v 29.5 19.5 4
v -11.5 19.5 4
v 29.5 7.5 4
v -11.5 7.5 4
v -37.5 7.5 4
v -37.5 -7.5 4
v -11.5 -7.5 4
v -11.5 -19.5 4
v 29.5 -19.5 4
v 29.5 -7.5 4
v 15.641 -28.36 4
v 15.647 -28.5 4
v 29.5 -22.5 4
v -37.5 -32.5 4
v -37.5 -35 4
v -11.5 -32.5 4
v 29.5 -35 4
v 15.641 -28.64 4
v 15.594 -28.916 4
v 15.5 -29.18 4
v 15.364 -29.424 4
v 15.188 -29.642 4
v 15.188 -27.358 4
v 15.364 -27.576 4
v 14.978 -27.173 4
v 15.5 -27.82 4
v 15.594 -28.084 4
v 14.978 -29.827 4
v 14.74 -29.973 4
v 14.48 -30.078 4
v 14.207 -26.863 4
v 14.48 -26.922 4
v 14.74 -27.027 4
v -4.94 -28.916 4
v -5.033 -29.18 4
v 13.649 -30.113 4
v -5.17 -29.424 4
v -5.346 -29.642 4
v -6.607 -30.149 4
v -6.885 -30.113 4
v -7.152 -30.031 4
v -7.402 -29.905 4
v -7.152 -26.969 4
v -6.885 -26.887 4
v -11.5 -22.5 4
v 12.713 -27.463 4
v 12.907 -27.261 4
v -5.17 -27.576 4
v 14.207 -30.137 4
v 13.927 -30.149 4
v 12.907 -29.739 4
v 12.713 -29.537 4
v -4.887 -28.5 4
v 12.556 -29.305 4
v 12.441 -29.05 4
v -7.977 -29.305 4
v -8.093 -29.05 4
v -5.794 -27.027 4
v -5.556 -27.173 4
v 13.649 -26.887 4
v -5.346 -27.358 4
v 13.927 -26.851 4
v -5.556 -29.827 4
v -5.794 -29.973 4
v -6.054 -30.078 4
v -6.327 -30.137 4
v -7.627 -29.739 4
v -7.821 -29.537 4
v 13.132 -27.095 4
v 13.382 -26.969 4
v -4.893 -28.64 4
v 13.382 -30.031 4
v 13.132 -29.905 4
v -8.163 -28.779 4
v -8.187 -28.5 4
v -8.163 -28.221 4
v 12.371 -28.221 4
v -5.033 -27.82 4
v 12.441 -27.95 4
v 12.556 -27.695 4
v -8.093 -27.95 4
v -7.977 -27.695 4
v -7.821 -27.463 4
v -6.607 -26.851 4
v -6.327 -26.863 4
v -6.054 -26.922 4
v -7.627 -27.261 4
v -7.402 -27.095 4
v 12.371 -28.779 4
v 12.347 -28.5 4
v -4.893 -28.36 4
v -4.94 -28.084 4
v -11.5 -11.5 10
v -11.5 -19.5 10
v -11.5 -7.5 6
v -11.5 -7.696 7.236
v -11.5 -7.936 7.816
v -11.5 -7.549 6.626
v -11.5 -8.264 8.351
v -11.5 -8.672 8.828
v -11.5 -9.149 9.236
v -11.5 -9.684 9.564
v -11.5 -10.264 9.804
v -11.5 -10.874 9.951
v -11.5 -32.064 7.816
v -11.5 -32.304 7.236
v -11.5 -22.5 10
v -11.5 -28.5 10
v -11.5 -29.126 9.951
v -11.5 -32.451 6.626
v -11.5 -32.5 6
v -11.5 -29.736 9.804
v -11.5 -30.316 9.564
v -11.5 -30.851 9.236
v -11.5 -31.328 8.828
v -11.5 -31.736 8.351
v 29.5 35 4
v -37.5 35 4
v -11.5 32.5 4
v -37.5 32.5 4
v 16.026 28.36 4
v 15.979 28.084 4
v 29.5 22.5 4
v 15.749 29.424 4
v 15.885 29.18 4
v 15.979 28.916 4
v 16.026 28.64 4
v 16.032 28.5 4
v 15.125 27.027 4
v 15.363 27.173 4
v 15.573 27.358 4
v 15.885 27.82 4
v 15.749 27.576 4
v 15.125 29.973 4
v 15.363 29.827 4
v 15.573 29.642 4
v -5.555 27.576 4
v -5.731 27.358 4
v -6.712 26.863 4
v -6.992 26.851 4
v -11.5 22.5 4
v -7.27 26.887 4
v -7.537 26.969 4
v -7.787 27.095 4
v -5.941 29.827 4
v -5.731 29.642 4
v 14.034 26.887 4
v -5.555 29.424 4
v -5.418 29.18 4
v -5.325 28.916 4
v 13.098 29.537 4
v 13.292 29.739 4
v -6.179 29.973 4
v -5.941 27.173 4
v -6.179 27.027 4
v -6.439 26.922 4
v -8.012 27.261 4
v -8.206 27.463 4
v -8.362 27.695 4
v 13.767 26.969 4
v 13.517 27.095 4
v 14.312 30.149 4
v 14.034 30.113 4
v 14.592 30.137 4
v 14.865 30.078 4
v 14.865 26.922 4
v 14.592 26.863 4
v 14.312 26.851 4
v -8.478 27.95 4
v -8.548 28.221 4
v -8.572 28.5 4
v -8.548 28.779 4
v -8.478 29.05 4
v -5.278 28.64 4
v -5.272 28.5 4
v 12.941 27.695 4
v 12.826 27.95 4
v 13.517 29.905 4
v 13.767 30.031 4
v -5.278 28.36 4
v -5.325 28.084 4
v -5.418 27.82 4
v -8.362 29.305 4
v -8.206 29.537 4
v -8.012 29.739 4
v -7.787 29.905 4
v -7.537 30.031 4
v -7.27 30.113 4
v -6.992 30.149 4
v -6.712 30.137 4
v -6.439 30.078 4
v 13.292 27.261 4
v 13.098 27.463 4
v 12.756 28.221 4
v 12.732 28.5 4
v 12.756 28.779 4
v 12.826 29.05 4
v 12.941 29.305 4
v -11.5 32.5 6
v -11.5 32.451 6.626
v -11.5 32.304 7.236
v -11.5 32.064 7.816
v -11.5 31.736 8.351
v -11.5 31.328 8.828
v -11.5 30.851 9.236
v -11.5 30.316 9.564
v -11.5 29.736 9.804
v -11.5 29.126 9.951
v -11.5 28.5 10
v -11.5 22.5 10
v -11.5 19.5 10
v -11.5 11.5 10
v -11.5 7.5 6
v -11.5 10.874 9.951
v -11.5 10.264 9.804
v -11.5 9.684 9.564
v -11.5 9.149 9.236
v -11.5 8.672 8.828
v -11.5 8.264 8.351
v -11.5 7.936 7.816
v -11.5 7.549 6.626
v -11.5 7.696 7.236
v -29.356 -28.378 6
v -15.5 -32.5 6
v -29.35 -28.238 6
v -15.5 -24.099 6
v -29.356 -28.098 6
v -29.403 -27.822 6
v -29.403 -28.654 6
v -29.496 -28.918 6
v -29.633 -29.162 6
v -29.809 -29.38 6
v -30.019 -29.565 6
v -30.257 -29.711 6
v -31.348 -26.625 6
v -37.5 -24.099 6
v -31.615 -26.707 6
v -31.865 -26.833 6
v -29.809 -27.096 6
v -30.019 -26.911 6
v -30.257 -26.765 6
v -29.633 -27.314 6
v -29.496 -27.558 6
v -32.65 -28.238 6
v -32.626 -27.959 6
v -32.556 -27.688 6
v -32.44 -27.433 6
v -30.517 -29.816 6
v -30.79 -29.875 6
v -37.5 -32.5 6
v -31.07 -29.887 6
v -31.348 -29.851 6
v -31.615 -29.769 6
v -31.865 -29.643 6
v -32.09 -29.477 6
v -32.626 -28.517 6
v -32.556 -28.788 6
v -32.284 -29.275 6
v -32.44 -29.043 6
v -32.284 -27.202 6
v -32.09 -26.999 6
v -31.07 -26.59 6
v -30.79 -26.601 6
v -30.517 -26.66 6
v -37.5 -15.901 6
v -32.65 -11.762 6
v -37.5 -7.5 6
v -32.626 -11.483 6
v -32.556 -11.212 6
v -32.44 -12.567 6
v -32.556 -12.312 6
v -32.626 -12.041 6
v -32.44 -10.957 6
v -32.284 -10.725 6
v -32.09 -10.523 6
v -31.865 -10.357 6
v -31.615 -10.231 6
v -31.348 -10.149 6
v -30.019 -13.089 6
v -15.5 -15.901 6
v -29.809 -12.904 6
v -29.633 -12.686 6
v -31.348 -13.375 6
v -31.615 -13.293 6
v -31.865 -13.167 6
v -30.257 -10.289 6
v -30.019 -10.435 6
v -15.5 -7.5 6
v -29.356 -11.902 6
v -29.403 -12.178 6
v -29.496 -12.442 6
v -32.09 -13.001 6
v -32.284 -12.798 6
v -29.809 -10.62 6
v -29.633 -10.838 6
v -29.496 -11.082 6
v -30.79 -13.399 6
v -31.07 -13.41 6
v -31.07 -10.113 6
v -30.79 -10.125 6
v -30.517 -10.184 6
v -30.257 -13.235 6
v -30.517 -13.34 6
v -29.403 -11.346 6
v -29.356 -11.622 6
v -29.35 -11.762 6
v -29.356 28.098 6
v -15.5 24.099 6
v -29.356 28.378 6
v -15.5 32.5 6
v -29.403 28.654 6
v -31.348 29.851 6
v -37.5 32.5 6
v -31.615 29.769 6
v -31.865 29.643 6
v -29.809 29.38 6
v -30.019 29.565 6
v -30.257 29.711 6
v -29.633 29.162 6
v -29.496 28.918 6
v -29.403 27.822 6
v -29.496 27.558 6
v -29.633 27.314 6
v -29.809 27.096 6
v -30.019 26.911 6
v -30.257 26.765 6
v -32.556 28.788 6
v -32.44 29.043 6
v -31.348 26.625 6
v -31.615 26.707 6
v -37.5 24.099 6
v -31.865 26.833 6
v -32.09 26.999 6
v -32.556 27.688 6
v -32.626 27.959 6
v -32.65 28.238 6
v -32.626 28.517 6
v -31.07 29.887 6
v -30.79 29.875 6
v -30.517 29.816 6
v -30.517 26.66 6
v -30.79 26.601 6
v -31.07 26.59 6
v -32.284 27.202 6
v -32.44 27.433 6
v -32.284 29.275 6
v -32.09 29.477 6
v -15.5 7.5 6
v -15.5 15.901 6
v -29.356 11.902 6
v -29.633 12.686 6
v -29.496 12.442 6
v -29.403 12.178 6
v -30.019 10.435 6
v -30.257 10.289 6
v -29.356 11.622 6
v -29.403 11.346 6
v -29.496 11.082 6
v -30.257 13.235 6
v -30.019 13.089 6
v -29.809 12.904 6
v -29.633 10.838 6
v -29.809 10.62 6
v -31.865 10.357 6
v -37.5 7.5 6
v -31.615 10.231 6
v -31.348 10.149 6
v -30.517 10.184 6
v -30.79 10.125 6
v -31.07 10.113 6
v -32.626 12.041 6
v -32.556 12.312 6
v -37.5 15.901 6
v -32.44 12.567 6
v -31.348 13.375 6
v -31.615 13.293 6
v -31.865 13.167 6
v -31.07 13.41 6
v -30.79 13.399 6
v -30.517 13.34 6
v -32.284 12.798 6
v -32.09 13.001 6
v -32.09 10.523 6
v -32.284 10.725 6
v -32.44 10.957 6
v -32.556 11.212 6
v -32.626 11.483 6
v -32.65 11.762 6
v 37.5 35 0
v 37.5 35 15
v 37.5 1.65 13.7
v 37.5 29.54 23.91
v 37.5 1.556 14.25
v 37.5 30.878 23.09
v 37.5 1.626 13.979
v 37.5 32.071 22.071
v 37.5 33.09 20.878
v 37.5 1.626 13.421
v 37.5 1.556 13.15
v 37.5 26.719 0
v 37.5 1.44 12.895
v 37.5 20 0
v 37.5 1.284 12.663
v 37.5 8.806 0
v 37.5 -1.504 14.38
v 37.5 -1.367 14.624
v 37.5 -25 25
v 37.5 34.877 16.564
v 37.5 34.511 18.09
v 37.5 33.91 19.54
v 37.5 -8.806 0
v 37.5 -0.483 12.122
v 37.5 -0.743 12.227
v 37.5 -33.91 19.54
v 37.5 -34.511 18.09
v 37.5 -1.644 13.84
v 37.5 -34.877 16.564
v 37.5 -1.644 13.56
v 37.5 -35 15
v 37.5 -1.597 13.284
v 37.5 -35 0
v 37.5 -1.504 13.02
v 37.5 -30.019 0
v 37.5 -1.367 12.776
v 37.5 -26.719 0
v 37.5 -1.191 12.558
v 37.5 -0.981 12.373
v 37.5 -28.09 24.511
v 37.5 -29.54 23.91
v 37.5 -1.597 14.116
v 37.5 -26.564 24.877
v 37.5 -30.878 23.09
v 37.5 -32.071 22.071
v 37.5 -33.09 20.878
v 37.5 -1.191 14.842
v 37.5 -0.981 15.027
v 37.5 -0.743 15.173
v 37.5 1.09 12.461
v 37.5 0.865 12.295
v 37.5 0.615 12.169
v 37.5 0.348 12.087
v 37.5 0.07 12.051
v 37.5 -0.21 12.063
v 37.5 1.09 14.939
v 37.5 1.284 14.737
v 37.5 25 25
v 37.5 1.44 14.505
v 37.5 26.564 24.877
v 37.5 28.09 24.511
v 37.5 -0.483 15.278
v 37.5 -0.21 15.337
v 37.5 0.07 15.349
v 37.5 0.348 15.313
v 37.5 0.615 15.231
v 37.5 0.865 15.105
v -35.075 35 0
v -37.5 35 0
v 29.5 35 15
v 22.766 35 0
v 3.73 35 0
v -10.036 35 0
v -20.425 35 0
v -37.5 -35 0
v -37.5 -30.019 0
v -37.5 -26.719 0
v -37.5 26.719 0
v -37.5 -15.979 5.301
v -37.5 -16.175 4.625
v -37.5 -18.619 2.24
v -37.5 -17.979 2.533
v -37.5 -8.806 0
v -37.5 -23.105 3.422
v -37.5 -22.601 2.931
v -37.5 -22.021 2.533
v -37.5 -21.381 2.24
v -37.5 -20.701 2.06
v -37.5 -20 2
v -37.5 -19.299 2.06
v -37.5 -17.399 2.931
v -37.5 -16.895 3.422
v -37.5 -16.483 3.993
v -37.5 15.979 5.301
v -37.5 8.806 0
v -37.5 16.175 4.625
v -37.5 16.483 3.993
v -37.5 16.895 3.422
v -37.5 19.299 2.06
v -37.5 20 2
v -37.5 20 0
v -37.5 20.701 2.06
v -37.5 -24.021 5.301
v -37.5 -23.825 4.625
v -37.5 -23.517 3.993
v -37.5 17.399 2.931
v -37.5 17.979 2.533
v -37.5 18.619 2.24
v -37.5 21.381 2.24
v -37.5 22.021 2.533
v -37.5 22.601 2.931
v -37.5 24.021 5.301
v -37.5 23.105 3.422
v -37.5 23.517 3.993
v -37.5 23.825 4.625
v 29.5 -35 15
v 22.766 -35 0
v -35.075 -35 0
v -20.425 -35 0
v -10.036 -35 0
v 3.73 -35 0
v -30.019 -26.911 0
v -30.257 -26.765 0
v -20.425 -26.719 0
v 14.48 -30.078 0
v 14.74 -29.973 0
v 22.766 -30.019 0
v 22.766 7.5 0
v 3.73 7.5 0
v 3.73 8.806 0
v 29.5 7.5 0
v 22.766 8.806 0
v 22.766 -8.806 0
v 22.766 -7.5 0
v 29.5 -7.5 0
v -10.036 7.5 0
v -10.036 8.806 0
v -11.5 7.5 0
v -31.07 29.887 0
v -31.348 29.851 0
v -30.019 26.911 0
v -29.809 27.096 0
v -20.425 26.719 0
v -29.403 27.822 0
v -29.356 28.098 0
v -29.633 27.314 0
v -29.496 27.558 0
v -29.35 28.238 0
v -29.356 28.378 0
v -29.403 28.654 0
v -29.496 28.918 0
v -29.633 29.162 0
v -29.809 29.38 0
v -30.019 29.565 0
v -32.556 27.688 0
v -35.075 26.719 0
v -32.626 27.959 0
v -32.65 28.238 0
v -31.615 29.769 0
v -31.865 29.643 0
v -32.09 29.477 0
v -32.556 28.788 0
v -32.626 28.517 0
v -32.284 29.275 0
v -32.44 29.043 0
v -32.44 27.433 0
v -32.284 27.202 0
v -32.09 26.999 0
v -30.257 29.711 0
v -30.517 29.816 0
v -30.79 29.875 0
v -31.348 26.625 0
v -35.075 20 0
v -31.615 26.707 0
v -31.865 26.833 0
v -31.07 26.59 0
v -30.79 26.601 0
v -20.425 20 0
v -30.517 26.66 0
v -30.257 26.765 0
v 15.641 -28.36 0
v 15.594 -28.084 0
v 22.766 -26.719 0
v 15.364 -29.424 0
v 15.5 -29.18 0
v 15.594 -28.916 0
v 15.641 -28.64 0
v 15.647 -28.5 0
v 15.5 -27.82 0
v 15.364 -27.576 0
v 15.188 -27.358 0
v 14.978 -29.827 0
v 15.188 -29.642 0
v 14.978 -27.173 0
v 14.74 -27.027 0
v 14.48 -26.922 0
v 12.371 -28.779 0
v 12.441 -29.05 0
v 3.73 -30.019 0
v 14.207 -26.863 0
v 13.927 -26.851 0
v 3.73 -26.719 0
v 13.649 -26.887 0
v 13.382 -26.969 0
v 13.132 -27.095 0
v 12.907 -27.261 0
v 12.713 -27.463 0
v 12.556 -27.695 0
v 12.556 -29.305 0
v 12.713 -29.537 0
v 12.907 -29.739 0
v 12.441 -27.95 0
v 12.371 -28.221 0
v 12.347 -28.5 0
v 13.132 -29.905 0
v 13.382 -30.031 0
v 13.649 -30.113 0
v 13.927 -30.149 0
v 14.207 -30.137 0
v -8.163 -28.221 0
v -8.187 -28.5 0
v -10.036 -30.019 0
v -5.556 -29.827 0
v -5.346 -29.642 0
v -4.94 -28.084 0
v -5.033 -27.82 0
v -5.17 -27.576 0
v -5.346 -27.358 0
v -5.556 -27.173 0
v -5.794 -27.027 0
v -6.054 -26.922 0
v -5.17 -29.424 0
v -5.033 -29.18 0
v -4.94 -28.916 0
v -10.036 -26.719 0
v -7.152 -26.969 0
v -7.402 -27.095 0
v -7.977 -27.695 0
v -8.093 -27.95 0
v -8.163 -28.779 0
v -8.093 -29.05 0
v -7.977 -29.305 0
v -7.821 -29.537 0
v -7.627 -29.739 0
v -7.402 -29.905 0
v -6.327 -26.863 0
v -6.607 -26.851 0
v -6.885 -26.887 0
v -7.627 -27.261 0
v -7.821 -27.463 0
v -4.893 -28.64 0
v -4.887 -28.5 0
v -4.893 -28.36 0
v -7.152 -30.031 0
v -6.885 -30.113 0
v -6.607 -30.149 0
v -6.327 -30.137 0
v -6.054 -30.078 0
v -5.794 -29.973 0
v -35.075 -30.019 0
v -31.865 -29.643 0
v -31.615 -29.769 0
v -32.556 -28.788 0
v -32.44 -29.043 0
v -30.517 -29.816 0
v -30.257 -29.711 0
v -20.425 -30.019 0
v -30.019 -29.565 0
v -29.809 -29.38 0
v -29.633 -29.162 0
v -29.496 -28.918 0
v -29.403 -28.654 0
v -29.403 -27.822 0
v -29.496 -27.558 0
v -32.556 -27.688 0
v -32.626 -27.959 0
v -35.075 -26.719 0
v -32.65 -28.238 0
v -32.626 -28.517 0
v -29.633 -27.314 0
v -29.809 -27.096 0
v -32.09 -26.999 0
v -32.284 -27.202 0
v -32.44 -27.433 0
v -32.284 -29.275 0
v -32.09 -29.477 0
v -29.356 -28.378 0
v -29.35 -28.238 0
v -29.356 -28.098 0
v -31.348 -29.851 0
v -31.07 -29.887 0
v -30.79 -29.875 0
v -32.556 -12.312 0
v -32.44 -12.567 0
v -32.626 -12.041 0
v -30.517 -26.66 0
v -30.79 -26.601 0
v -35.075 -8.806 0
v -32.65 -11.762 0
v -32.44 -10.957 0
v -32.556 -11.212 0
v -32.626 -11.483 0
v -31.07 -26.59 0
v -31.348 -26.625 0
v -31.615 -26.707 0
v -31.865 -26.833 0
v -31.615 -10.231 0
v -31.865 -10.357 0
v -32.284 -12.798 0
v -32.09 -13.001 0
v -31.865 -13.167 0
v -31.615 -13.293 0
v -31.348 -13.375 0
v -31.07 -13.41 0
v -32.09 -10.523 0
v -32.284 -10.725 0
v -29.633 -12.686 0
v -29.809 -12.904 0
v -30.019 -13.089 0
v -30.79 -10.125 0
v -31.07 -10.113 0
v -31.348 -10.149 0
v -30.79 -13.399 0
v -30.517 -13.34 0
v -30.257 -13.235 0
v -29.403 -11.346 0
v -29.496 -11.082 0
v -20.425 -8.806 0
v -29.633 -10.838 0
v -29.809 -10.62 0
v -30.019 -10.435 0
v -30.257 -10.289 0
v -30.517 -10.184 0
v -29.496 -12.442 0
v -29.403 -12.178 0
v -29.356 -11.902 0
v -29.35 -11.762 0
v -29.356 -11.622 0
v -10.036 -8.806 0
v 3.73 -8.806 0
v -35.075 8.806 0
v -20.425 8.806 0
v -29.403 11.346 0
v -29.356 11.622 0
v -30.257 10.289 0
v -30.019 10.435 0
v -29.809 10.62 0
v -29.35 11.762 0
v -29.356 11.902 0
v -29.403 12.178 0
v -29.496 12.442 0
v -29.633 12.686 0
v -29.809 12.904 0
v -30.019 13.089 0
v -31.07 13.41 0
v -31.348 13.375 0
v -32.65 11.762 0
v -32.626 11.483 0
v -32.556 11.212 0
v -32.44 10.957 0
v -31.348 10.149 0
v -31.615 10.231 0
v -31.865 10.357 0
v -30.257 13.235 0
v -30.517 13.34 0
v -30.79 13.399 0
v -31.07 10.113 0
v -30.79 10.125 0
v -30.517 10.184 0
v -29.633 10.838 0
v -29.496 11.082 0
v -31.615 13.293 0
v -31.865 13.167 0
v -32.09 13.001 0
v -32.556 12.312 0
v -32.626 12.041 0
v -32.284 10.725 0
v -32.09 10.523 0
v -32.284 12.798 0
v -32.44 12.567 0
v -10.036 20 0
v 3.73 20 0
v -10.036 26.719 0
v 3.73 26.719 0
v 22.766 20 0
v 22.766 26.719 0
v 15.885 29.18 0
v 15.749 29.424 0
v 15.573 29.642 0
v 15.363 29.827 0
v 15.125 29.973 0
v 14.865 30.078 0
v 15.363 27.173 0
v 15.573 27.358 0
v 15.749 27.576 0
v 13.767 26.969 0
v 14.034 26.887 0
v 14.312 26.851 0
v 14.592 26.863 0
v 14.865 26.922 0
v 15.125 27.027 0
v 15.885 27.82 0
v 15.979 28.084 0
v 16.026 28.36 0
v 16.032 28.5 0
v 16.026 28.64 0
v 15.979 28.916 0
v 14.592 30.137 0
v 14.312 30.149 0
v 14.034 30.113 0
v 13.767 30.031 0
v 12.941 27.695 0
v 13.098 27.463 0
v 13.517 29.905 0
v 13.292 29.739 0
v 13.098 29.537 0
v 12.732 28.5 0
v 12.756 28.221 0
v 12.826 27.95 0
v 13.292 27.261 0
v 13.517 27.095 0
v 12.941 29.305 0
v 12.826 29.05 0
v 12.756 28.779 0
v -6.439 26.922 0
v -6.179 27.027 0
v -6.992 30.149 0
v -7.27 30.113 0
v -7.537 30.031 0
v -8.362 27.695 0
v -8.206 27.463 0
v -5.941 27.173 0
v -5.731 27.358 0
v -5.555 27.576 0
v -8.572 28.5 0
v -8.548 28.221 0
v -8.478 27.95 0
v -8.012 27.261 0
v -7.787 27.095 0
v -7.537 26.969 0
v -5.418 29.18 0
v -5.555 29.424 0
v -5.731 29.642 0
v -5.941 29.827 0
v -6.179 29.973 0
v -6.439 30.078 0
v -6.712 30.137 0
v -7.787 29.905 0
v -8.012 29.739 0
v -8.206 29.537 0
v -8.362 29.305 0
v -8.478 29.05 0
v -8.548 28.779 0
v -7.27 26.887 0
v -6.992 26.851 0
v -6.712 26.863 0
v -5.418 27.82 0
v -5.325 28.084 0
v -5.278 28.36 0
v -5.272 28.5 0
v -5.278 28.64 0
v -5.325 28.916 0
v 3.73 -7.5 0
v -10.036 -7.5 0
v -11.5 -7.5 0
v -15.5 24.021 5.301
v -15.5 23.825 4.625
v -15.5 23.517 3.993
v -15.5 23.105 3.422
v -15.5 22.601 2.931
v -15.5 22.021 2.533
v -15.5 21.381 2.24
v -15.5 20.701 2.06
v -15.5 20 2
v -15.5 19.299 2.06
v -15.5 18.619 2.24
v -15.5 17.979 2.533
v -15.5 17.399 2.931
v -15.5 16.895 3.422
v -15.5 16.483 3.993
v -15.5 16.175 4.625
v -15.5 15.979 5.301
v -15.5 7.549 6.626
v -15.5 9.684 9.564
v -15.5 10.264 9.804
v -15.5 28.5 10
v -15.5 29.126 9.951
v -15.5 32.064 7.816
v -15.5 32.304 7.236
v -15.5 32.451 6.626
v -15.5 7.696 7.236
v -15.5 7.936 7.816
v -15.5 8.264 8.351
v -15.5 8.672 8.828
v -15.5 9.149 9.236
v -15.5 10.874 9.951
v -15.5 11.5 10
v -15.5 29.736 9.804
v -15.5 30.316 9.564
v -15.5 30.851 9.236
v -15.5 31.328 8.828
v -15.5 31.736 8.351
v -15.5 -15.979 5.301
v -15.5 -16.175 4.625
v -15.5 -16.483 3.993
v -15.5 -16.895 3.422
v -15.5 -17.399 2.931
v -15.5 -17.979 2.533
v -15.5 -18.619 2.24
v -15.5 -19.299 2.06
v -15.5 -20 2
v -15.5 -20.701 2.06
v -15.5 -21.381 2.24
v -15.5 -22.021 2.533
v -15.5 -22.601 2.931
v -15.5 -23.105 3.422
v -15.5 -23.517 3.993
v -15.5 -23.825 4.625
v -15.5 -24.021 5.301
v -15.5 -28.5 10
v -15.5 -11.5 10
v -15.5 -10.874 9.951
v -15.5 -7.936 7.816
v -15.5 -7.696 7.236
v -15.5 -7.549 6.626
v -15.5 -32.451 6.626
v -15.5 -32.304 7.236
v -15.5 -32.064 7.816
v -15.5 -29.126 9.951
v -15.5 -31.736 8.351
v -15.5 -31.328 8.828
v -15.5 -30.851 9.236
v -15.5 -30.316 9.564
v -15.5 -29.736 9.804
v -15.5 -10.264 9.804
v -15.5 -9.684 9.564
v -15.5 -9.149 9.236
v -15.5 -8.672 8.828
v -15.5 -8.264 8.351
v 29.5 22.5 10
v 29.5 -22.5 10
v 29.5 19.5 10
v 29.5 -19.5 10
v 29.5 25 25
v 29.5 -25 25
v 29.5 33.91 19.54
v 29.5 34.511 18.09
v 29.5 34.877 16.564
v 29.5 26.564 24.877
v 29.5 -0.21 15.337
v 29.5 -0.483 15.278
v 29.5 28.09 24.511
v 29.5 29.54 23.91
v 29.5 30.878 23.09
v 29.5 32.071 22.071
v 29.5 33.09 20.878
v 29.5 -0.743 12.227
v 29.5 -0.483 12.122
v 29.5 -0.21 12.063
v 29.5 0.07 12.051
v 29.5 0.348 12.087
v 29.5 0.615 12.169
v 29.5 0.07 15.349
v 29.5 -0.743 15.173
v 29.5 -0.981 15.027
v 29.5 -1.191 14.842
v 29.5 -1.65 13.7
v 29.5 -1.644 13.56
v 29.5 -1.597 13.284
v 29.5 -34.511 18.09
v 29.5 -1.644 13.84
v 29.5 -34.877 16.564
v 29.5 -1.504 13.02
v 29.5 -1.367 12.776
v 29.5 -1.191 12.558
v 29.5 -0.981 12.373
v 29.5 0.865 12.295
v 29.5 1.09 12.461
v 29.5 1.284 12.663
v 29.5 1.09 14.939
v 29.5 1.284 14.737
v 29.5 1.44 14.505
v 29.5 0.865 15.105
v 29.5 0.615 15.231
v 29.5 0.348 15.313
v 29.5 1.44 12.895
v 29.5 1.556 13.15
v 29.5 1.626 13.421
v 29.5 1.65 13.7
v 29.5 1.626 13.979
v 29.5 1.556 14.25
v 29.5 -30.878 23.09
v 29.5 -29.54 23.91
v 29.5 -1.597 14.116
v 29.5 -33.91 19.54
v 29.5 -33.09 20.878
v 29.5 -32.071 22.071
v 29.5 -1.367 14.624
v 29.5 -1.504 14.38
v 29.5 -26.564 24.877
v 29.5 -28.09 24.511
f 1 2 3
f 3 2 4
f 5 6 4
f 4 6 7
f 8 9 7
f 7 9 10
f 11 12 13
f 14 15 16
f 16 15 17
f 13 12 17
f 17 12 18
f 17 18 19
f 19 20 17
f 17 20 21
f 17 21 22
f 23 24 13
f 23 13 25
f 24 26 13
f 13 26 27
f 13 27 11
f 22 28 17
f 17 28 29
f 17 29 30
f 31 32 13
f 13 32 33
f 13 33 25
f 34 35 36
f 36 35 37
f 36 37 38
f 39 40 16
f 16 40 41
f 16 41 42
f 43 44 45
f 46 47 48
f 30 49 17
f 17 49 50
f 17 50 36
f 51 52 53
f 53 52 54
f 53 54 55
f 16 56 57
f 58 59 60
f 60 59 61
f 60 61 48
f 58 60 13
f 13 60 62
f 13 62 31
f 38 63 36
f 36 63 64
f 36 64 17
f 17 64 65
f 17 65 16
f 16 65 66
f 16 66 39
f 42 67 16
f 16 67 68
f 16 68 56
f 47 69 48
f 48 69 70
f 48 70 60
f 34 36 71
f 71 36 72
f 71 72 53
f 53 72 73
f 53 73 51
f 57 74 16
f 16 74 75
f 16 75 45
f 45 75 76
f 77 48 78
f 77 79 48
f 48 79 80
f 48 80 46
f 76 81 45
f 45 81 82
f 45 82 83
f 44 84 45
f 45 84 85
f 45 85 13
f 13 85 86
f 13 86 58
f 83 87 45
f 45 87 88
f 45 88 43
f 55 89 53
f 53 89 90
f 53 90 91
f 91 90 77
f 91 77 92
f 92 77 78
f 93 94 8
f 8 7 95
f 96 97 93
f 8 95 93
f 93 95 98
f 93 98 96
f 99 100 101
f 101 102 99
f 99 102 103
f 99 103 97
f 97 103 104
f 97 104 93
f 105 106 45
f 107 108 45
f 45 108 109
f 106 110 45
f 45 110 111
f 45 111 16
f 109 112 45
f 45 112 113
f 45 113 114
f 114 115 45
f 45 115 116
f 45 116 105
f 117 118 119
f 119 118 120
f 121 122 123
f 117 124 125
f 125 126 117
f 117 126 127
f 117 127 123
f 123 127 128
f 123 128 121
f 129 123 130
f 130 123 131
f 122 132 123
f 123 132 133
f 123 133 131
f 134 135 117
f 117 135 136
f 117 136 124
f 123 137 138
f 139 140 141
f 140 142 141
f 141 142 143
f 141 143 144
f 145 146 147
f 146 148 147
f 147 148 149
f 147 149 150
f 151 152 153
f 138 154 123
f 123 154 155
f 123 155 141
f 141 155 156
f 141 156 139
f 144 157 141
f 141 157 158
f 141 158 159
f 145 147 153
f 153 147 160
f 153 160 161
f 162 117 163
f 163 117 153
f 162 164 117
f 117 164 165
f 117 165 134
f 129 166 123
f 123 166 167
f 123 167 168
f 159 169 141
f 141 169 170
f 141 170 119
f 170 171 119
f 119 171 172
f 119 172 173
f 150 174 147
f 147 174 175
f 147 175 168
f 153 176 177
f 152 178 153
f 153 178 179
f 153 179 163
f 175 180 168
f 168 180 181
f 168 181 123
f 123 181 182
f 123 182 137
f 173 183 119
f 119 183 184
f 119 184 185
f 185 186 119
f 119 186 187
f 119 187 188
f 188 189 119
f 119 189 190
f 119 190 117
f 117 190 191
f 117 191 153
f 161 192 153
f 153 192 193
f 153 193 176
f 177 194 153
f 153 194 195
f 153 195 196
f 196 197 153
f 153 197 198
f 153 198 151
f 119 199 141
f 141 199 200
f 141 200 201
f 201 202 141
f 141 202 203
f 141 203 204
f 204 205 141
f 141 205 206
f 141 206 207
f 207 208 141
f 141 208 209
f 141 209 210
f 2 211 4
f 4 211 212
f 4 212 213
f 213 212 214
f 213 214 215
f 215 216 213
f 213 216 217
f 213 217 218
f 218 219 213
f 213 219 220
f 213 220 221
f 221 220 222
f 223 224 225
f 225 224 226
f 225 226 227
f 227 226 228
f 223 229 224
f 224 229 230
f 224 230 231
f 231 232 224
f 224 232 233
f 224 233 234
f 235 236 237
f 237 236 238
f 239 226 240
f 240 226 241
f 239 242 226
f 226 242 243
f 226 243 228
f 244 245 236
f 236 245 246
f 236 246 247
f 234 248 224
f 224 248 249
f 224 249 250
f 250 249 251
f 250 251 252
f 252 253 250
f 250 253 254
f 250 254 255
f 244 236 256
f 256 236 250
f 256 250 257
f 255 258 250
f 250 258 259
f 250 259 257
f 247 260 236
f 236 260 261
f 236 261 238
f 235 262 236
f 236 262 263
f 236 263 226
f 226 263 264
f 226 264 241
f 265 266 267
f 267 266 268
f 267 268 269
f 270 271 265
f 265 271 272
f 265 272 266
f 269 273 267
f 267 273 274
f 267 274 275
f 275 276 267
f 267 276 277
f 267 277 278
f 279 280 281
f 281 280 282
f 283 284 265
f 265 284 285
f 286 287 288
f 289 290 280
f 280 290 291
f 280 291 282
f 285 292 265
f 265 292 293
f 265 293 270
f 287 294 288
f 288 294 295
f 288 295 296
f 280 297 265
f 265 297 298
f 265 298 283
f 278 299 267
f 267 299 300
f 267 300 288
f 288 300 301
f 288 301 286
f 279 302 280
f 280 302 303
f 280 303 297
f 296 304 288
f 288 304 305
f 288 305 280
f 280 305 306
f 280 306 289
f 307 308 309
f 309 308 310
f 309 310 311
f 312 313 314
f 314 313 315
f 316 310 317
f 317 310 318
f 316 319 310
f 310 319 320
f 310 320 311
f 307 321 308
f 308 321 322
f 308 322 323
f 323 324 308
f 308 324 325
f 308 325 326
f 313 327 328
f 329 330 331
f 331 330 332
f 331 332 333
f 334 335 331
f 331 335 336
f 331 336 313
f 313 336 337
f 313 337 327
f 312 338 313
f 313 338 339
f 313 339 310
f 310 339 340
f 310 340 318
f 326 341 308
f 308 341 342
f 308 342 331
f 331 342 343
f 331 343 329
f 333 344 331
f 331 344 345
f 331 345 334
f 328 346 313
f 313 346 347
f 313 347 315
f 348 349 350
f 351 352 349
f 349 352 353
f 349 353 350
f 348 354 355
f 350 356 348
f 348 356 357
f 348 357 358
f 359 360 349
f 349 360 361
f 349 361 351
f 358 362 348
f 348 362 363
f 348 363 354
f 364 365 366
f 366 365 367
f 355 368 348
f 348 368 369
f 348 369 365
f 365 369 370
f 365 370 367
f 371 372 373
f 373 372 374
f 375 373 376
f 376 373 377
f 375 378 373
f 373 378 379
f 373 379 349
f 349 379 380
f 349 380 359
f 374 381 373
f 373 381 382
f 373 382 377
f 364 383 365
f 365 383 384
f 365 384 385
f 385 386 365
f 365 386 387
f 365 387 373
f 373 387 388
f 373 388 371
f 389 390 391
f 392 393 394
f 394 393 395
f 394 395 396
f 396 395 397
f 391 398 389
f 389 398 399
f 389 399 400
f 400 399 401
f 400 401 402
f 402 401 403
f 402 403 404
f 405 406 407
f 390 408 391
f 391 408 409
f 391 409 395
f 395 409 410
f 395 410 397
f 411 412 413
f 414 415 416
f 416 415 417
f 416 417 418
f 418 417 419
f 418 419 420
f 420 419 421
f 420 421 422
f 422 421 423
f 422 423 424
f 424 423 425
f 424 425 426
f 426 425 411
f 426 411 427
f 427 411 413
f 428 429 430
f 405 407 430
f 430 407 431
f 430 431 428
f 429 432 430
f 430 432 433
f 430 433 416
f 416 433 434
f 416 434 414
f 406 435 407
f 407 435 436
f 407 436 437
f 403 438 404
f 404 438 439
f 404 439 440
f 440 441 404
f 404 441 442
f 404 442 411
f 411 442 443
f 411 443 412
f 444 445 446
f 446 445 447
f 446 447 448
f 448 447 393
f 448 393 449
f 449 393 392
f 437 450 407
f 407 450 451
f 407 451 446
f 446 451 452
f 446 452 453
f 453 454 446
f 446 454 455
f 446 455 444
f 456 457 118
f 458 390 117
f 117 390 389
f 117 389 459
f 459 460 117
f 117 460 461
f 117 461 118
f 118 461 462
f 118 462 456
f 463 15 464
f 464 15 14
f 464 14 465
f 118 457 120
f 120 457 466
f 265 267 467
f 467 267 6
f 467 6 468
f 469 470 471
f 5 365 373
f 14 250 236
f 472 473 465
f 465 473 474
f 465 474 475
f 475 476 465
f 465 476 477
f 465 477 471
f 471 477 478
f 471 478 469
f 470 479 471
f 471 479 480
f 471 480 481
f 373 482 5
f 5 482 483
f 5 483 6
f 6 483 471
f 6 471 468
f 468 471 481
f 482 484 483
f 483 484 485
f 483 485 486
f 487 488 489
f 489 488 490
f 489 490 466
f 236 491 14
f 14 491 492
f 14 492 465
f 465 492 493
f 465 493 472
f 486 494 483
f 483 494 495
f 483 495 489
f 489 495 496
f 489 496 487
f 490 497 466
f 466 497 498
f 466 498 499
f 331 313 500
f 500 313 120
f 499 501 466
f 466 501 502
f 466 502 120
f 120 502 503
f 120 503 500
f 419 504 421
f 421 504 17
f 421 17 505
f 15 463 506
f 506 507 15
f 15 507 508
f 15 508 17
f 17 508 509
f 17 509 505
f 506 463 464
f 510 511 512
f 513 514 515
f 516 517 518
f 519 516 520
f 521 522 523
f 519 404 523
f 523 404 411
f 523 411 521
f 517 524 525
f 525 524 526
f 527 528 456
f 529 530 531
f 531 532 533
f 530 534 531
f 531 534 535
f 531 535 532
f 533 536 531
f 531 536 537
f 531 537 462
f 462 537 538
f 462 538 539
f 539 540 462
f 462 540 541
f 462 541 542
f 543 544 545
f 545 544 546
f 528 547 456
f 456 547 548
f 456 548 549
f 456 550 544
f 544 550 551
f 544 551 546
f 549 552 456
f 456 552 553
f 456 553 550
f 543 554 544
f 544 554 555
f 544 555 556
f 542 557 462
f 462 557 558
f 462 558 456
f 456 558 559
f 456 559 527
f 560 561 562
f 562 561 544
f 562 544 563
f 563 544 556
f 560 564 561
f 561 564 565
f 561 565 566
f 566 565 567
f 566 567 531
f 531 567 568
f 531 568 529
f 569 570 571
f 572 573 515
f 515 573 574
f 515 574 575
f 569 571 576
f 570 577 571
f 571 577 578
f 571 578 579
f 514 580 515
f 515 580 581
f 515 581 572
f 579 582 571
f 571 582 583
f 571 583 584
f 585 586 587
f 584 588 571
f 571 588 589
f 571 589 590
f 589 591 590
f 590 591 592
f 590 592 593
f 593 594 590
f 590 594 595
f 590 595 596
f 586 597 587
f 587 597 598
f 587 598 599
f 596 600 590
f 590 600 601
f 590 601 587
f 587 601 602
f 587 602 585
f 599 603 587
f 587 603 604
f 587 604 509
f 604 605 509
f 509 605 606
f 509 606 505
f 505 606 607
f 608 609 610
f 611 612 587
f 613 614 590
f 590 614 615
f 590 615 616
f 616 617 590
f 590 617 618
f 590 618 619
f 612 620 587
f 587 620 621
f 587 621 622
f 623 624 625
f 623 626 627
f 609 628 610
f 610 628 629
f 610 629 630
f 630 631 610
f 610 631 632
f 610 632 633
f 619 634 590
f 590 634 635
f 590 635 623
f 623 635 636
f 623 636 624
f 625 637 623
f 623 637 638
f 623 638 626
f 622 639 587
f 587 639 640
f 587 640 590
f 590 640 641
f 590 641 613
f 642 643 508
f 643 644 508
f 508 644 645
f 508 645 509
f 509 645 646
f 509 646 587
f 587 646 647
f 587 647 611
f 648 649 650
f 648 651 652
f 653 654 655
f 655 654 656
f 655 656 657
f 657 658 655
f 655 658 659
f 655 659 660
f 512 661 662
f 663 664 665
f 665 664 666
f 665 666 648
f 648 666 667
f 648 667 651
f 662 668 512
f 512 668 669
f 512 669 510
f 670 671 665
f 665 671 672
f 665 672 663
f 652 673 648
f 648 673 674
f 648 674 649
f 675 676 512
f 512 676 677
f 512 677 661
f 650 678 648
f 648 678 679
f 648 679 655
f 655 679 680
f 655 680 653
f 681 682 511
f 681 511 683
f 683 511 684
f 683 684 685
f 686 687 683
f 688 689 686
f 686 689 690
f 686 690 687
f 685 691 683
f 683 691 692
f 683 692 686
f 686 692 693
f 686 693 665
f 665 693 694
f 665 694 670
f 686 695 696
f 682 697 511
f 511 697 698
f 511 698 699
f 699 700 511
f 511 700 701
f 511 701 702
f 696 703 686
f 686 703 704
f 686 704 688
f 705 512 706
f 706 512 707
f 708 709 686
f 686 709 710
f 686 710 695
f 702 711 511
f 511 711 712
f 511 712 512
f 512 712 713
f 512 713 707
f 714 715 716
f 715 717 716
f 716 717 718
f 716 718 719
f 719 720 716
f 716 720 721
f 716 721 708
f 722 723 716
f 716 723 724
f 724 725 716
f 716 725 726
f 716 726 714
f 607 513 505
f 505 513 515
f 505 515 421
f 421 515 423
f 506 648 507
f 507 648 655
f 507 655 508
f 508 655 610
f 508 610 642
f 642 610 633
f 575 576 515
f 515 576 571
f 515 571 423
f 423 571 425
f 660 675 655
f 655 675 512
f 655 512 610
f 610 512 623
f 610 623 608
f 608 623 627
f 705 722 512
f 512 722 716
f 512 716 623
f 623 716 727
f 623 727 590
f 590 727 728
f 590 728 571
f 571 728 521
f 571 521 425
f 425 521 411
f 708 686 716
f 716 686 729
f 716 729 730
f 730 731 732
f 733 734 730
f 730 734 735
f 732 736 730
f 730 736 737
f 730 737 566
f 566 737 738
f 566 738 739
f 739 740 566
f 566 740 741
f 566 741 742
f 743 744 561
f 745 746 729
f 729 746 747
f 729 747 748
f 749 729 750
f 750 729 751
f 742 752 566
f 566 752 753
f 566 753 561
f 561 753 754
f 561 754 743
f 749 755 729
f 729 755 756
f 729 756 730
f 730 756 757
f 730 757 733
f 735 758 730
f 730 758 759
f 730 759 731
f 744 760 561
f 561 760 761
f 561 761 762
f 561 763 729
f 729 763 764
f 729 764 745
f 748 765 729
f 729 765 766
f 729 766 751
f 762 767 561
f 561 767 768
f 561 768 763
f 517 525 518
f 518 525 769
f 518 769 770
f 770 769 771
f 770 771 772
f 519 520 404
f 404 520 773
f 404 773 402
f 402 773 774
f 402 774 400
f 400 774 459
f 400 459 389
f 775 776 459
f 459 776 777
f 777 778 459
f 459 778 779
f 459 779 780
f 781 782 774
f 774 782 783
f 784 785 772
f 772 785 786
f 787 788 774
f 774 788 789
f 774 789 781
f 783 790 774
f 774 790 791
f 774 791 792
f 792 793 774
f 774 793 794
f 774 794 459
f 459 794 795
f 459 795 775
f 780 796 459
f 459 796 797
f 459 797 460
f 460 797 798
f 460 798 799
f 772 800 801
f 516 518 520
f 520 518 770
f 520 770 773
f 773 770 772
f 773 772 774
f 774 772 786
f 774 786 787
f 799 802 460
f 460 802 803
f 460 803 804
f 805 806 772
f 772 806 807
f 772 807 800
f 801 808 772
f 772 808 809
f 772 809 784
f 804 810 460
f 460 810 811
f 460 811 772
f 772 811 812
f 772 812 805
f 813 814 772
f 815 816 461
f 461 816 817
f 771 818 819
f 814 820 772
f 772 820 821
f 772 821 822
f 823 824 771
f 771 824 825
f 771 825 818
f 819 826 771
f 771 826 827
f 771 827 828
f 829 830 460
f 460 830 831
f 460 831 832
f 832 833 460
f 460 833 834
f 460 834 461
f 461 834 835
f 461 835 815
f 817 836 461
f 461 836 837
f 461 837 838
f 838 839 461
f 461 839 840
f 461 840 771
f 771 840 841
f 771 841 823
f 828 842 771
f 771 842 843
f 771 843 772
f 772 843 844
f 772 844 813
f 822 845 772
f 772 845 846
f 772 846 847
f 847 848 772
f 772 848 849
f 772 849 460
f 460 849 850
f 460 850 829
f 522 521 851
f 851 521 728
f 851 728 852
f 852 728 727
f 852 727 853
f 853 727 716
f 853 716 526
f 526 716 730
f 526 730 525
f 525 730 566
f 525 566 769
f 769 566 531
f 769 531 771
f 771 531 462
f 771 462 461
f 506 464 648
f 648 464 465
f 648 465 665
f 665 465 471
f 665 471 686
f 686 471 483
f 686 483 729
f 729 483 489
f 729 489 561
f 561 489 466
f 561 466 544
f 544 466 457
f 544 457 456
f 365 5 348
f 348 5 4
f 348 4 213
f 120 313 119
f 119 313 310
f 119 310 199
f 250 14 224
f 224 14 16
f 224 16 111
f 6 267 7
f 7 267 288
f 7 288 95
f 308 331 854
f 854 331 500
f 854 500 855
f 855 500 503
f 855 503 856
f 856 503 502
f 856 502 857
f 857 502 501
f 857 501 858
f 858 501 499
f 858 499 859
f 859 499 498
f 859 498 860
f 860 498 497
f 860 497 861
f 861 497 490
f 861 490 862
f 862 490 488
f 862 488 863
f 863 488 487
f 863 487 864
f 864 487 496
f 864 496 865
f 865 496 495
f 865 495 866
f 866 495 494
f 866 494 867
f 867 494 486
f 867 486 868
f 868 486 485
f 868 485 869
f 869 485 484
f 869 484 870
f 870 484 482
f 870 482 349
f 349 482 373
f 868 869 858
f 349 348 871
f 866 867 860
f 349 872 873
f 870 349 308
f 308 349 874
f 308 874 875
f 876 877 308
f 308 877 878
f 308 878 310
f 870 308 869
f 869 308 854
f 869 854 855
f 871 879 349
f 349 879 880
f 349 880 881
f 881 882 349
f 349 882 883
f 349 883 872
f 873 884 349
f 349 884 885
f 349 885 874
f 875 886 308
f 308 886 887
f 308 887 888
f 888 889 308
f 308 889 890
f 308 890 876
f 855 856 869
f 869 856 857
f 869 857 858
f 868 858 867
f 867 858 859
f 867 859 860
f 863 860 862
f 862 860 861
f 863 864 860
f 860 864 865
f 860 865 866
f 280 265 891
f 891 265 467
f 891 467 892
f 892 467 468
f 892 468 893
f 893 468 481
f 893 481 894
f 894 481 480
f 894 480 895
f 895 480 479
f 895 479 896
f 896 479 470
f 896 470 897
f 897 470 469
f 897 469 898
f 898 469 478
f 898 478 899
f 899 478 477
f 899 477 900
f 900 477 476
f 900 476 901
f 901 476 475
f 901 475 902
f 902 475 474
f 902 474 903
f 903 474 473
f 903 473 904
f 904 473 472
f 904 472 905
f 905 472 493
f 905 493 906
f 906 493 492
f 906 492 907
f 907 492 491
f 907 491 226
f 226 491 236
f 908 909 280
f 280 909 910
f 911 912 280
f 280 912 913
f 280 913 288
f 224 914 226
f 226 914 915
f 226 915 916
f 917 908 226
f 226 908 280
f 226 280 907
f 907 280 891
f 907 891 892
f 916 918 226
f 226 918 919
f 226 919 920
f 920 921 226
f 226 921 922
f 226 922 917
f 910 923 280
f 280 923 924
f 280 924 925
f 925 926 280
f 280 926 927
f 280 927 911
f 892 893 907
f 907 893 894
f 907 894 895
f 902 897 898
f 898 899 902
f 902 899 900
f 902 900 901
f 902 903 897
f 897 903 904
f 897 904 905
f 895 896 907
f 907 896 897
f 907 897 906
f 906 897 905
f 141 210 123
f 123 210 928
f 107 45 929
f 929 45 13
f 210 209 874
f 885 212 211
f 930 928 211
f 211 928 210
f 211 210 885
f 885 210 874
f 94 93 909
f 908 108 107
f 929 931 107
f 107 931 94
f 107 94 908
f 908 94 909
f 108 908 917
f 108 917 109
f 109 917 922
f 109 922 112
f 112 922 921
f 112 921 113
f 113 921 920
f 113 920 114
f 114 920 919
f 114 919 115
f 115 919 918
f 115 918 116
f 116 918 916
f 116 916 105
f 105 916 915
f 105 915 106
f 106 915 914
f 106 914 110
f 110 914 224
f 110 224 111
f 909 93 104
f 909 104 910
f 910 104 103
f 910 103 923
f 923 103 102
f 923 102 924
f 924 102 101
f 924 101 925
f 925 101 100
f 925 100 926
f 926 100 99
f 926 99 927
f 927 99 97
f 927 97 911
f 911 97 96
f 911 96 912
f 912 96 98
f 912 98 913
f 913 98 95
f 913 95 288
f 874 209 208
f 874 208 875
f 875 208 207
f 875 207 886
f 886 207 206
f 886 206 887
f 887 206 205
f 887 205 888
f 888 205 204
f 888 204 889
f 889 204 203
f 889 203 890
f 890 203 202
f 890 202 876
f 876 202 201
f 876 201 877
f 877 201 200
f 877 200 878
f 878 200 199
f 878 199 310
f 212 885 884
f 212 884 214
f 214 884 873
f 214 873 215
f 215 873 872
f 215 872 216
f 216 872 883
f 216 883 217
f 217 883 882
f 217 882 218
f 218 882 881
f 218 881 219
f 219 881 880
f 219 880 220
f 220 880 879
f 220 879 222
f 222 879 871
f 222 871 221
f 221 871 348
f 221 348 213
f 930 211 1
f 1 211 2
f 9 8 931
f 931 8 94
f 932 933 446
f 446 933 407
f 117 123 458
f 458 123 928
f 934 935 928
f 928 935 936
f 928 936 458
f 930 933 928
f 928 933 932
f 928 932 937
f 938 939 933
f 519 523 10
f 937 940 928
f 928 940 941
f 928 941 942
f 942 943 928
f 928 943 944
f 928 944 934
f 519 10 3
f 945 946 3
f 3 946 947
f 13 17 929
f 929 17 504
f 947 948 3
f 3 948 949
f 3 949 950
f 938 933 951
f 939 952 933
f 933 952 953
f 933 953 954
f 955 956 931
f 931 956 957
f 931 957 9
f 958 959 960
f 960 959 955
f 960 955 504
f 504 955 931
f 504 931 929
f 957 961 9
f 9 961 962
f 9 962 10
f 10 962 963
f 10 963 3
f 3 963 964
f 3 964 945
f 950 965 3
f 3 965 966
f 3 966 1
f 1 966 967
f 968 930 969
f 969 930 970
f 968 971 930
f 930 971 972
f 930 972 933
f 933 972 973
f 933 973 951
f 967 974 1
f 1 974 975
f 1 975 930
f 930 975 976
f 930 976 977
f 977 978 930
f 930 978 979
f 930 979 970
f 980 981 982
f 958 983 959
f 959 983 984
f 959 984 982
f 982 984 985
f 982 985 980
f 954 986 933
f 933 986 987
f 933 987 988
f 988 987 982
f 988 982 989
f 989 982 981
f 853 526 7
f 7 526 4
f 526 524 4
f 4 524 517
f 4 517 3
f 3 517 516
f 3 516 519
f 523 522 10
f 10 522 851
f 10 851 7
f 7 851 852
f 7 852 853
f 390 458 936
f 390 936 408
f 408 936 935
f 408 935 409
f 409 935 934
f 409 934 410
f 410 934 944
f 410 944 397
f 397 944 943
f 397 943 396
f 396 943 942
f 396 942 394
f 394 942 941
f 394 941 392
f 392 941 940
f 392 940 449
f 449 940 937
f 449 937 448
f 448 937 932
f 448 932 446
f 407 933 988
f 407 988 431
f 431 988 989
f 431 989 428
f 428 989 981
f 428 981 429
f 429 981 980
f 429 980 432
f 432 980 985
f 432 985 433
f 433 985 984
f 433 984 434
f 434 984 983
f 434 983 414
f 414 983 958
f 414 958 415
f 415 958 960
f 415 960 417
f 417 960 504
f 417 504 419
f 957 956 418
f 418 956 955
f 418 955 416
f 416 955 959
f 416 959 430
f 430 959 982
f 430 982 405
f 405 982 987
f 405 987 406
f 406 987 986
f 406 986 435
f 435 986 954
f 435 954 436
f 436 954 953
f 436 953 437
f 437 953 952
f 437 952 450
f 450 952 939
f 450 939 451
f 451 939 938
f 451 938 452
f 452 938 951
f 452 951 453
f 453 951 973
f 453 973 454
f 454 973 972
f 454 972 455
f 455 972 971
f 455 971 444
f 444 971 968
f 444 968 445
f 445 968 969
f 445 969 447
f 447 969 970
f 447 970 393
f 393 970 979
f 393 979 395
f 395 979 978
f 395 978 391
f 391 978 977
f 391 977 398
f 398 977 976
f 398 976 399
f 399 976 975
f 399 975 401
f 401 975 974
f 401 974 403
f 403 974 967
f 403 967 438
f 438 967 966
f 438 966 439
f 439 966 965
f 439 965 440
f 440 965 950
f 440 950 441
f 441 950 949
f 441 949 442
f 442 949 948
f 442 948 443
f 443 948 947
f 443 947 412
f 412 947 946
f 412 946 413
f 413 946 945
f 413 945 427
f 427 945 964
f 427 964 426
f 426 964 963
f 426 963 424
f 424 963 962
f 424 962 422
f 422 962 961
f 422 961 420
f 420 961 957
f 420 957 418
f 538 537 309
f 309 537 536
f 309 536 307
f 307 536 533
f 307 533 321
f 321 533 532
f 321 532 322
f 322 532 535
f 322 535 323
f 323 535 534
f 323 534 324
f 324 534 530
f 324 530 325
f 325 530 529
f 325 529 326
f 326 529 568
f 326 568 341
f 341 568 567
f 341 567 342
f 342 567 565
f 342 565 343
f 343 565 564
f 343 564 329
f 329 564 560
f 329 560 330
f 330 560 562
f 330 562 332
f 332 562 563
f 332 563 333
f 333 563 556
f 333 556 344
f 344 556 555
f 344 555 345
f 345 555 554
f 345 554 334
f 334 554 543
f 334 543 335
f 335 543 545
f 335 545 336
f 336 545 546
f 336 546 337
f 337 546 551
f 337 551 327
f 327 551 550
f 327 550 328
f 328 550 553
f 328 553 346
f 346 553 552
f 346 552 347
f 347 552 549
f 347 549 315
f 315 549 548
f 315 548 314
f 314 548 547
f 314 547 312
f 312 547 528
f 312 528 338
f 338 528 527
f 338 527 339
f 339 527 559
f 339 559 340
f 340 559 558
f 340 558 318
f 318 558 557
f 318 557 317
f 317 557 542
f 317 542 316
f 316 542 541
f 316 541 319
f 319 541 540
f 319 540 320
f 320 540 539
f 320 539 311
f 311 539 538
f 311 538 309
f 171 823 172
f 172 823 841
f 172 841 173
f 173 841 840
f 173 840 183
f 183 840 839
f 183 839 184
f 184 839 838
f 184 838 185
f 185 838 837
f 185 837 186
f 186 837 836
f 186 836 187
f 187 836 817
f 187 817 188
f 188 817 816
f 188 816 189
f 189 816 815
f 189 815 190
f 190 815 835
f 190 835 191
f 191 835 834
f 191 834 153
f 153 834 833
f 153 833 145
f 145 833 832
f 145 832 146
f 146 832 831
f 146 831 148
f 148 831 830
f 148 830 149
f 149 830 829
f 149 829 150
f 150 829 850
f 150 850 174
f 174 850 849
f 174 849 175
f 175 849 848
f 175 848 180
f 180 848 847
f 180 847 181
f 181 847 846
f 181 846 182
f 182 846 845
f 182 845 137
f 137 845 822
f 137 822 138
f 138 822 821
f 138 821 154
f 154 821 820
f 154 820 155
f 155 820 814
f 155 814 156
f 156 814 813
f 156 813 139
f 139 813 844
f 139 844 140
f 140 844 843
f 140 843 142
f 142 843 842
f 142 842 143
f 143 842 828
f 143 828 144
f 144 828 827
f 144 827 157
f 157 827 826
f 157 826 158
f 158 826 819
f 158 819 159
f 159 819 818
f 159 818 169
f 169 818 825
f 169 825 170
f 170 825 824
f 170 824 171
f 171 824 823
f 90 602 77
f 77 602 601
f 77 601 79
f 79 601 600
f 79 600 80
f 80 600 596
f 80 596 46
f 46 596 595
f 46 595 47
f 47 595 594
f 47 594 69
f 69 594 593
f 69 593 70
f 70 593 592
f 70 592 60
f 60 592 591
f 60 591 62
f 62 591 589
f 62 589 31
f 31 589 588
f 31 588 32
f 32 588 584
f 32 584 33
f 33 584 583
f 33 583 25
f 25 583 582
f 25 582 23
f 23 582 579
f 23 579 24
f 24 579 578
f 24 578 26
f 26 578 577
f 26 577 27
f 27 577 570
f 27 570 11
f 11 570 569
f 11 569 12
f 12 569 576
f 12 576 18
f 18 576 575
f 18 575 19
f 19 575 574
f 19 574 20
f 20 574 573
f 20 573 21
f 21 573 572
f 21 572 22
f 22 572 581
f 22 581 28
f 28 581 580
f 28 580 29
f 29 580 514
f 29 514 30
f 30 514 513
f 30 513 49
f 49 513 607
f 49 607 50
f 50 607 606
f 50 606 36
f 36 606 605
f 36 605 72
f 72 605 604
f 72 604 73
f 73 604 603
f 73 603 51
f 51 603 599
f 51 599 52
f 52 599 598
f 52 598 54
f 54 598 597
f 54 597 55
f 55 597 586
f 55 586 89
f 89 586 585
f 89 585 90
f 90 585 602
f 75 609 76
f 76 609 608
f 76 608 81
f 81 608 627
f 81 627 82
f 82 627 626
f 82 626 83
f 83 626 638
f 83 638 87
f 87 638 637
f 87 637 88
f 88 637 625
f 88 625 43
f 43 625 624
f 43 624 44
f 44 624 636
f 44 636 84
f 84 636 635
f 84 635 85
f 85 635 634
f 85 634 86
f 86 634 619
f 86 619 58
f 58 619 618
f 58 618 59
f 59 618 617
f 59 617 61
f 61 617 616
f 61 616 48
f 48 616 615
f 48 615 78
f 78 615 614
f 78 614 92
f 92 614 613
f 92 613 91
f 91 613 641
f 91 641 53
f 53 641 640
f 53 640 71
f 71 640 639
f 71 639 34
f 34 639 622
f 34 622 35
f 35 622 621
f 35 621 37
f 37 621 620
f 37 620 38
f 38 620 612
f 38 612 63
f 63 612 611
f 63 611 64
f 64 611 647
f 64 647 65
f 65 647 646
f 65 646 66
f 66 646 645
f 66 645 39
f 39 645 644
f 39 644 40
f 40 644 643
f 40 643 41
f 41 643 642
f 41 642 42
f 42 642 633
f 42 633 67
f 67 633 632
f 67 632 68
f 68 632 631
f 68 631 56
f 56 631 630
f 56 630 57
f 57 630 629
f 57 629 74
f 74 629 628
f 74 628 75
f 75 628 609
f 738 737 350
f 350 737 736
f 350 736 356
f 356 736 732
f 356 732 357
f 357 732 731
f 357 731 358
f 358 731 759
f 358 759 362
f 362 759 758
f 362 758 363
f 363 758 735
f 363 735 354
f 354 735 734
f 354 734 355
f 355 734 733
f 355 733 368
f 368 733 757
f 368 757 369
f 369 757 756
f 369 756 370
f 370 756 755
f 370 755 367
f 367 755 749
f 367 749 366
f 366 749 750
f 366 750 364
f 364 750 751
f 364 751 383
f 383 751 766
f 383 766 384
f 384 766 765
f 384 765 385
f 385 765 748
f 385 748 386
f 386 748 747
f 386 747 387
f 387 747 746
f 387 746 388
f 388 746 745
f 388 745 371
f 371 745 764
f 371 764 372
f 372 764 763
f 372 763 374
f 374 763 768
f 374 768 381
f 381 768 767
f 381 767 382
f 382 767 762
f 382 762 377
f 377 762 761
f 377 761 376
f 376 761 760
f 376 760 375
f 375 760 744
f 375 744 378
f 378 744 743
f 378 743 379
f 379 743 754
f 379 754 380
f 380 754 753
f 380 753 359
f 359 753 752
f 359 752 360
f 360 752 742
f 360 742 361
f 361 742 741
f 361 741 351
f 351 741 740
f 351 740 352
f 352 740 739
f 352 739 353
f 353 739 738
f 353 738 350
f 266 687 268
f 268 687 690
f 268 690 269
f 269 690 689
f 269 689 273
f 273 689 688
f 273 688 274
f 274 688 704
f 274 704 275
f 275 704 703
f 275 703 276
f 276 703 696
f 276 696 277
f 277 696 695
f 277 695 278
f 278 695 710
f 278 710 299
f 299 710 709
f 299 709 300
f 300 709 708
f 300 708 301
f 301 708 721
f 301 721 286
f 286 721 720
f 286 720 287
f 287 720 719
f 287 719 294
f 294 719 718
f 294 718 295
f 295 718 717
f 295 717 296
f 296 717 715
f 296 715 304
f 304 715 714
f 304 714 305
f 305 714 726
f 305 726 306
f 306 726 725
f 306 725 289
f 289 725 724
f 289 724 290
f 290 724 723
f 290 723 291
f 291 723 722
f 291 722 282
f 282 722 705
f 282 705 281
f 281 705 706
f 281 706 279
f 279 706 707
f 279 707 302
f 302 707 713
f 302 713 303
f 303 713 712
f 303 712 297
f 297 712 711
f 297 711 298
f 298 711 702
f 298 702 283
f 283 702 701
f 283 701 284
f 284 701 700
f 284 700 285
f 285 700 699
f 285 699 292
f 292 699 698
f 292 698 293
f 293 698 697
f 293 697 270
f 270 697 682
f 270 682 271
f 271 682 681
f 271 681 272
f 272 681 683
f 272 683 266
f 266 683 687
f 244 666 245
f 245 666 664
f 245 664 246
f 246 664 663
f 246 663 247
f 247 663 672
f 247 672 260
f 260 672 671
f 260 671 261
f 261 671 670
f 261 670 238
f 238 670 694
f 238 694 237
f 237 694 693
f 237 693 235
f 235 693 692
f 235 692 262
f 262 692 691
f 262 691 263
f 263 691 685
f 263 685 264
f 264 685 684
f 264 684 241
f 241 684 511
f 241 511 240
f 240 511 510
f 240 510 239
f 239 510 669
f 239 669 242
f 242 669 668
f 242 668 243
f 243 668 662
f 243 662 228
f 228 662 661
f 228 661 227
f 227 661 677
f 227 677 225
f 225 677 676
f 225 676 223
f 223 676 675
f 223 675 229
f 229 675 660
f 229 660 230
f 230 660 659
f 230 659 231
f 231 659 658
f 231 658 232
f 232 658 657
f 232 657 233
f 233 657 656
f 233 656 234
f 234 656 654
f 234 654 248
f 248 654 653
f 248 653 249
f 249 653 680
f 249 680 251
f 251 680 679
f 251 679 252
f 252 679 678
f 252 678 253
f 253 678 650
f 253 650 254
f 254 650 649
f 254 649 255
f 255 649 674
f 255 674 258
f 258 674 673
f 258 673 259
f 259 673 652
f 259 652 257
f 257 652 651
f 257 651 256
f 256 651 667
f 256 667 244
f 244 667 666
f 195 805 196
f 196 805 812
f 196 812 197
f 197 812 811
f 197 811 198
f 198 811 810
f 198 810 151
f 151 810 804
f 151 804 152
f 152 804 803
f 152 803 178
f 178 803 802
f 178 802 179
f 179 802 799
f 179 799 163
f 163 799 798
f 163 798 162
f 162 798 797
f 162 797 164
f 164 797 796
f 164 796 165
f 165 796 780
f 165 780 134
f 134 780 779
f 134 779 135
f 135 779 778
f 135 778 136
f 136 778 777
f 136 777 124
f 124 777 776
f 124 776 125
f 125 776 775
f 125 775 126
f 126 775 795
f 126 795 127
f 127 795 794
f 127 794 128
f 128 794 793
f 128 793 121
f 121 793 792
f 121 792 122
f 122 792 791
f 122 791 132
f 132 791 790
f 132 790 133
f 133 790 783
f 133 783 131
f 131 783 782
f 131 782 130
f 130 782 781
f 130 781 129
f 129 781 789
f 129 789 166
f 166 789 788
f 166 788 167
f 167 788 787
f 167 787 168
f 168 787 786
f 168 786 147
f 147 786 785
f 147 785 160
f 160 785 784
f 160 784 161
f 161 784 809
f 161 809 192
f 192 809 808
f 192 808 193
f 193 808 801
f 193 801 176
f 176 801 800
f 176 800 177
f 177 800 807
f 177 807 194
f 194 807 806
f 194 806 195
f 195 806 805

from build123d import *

# Parameters (mm, degrees)
SKETCH1_W               = 75
SKETCH1_H               = 70
BOSS_EXTRUDE1_DEPTH     = 4
SKETCH4_W               = 26
SKETCH4_H               = 25
BOSS_EXTRUDE2_DEPTH     = 2
SKETCH3_R               = 4.1
CUT_EXTRUDE1_DEPTH      = 22
SKETCH5_W               = 40
SKETCH5_H               = 45
BOSS_EXTRUDE3_DEPTH     = 4
SKETCH7_R               = 11.3
SKETCH7_R_2             = 1.5
CUT_EXTRUDE2_DEPTH      = 86.248167136
SKETCH8_W               = 4
SKETCH8_H               = 25
BOSS_EXTRUDE4_DEPTH     = 4
FILLET2_R               = 4
SKETCH10_W              = 89
SKETCH10_H              = 3
BOSS_EXTRUDE5_DEPTH     = 6
CHAMFER2_SIZE           = 4
FILLET3_R               = 1
SKETCH11_W              = 40
SKETCH11_H              = 53
CUT_EXTRUDE3_DEPTH      = 86.622718948
SKETCH13_W              = 25
SKETCH13_H              = 70
BOSS_EXTRUDE6_DEPTH     = 8
SKETCH14_W              = 41
SKETCH14_H              = 15
CUT_EXTRUDE4_DEPTH      = 56.427881071
FILLET4_R               = 10
SKETCH15_R              = 1.65
CUT_EXTRUDE5_DEPTH      = 10
CUT_EXTRUDE6_DEPTH      = 58.063561053
CUT_EXTRUDE6_DEPTH_BACK = 58.063561053
SKETCH16_R              = 1.65


with BuildPart() as part:
    # Sketch1 → Boss-Extrude1 (new body)
    with BuildSketch(Plane.XY):
        Rectangle(SKETCH1_W, SKETCH1_H)
    extrude(amount=BOSS_EXTRUDE1_DEPTH)

    # Sketch4 → Boss-Extrude2 (add)
    with BuildSketch(Plane.XY.offset(4)):
        with Locations((-24.5, 20)):
            Rectangle(SKETCH4_W, SKETCH4_H)
        with Locations((-24.5, -20)):
            Rectangle(SKETCH4_W, SKETCH4_H)
    extrude(amount=BOSS_EXTRUDE2_DEPTH)

    # Sketch3 → Cut-Extrude1 (cut)
    with BuildSketch(Plane.ZY.offset(37.5)):
        with Locations((6.1, 20)):
            Circle(SKETCH3_R)
        with Locations((6.1, -20)):
            Circle(SKETCH3_R)
    extrude(amount=-CUT_EXTRUDE1_DEPTH, mode=Mode.SUBTRACT)

    # Sketch5 → Boss-Extrude3 (add)
    with BuildSketch(Plane.XY.offset(4)):
        with Locations((57.5, 0)):
            Rectangle(SKETCH5_W, SKETCH5_H)
    extrude(amount=-BOSS_EXTRUDE3_DEPTH)

    # Sketch7 → Cut-Extrude2 (cut, through all)
    with BuildSketch(Plane(origin=(0, 0, 0), x_dir=(-1, 0, 0), z_dir=(0, 0, -1))):
        with Locations((-54.5, 0)):
            Circle(SKETCH7_R)
        with Locations((-70, 15.5)):
            Circle(SKETCH7_R_2)
        with Locations((-39, 15.5)):
            Circle(SKETCH7_R_2)
        with Locations((-39, -15.5)):
            Circle(SKETCH7_R_2)
        with Locations((-70, -15.5)):
            Circle(SKETCH7_R_2)
    extrude(amount=-CUT_EXTRUDE2_DEPTH, mode=Mode.SUBTRACT)

    # Sketch8 → Boss-Extrude4 (add)
    with BuildSketch(Plane.XY.offset(6)):
        with Locations((-13.5, 20)):
            Rectangle(SKETCH8_W, SKETCH8_H)
        with Locations((-13.5, -20)):
            Rectangle(SKETCH8_W, SKETCH8_H)
    extrude(amount=BOSS_EXTRUDE4_DEPTH)

    # Fillet2
    fillet2_edges = [part.edges().sort_by_distance(p)[0] for p in [
        (-13.5, -32.5, 10),
        (-13.5, -7.5, 10),
        (-13.5, 32.5, 10),
        (-13.5, 7.5, 10),
    ]]
    fillet(fillet2_edges, radius=FILLET2_R)

    # Sketch10 → Boss-Extrude5 (add)
    with BuildSketch(Plane.XY.offset(4)):
        with Locations((33, 21)):
            Rectangle(SKETCH10_W, SKETCH10_H)
        with Locations((33, -21)):
            Rectangle(SKETCH10_W, SKETCH10_H)
    extrude(amount=BOSS_EXTRUDE5_DEPTH)

    # Chamfer2
    chamfer2_edges = [part.edges().sort_by_distance(p)[0] for p in [
        (37.5, 22.5, 2),
        (37.5, -22.5, 2),
        (77.5, 22.5, 5),
        (77.5, -22.5, 5),
    ]]
    chamfer(chamfer2_edges, length=CHAMFER2_SIZE)

    # Fillet3
    fillet3_edges = [part.edges().sort_by_distance(p)[0] for p in [
        (76.5, 19.5, 7),
        (76.5, -19.5, 7),
    ]]
    fillet(fillet3_edges, radius=FILLET3_R)

    # Sketch11 → Cut-Extrude3 (cut, through all)
    with BuildSketch(Plane(origin=(0, 0, 0), x_dir=(-1, 0, 0), z_dir=(0, 0, -1))):
        with Locations((-57.5, 0)):
            Rectangle(SKETCH11_W, SKETCH11_H)
    extrude(amount=-CUT_EXTRUDE3_DEPTH, mode=Mode.SUBTRACT)

    # Sketch13 → Boss-Extrude6 (add)
    with BuildSketch(Plane(origin=(37.5, 0, 0), x_dir=(0, 0, -1), z_dir=(1, 0, 0))):
        with Locations((-12.5, 0)):
            Rectangle(SKETCH13_W, SKETCH13_H)
    extrude(amount=-BOSS_EXTRUDE6_DEPTH)

    # Sketch14 → Cut-Extrude4 (cut, through all)
    with BuildSketch(Plane.XY.offset(4)):
        with Locations((9, 0)):
            Rectangle(SKETCH14_W, SKETCH14_H)
    extrude(amount=-CUT_EXTRUDE4_DEPTH, mode=Mode.SUBTRACT)

    # Fillet4
    fillet4_edges = [part.edges().sort_by_distance(p)[0] for p in [
        (33.5, -35, 25),
        (33.5, 35, 25),
    ]]
    fillet(fillet4_edges, radius=FILLET4_R)

    # Sketch15 → Cut-Extrude5 (cut)
    with BuildSketch(Plane(origin=(37.5, 0, 0), x_dir=(0, 0, -1), z_dir=(1, 0, 0))):
        with Locations(Location((-13.7, 0, 0), (0, 0, 90))):
            Circle(SKETCH15_R)
    extrude(amount=-CUT_EXTRUDE5_DEPTH, mode=Mode.SUBTRACT)

    # Sketch16 → Cut-Extrude6 (cut, two sides: drawn at the far end of the back side and taken through both)
    with BuildSketch(Plane(origin=(0, 0, 0), x_dir=(-1, 0, 0), z_dir=(0, 0, -1)).offset(-CUT_EXTRUDE6_DEPTH_BACK)):
        with Locations((31, 28.238089535)):
            Circle(SKETCH16_R)
        with Locations((31, 11.761910465)):
            Circle(SKETCH16_R)
        with Locations(Location((31, -11.761910465, 0), (0, 0, 180))):
            Circle(SKETCH16_R)
        with Locations(Location((31, -28.238089535, 0), (0, 0, 180))):
            Circle(SKETCH16_R)
        with Locations(Location((-14.38196164, 28.5, 0), (0, 0, 180))):
            Circle(SKETCH16_R)
        with Locations(Location((6.92196164, 28.5, 0), (0, 0, 180))):
            Circle(SKETCH16_R)
        with Locations(Location((-13.99696164, -28.5, 0), (0, 0, 180))):
            Circle(SKETCH16_R)
        with Locations(Location((6.53696164, -28.5, 0), (0, 0, 180))):
            Circle(SKETCH16_R)
    extrude(amount=CUT_EXTRUDE6_DEPTH + CUT_EXTRUDE6_DEPTH_BACK, mode=Mode.SUBTRACT)


solid = part.part
